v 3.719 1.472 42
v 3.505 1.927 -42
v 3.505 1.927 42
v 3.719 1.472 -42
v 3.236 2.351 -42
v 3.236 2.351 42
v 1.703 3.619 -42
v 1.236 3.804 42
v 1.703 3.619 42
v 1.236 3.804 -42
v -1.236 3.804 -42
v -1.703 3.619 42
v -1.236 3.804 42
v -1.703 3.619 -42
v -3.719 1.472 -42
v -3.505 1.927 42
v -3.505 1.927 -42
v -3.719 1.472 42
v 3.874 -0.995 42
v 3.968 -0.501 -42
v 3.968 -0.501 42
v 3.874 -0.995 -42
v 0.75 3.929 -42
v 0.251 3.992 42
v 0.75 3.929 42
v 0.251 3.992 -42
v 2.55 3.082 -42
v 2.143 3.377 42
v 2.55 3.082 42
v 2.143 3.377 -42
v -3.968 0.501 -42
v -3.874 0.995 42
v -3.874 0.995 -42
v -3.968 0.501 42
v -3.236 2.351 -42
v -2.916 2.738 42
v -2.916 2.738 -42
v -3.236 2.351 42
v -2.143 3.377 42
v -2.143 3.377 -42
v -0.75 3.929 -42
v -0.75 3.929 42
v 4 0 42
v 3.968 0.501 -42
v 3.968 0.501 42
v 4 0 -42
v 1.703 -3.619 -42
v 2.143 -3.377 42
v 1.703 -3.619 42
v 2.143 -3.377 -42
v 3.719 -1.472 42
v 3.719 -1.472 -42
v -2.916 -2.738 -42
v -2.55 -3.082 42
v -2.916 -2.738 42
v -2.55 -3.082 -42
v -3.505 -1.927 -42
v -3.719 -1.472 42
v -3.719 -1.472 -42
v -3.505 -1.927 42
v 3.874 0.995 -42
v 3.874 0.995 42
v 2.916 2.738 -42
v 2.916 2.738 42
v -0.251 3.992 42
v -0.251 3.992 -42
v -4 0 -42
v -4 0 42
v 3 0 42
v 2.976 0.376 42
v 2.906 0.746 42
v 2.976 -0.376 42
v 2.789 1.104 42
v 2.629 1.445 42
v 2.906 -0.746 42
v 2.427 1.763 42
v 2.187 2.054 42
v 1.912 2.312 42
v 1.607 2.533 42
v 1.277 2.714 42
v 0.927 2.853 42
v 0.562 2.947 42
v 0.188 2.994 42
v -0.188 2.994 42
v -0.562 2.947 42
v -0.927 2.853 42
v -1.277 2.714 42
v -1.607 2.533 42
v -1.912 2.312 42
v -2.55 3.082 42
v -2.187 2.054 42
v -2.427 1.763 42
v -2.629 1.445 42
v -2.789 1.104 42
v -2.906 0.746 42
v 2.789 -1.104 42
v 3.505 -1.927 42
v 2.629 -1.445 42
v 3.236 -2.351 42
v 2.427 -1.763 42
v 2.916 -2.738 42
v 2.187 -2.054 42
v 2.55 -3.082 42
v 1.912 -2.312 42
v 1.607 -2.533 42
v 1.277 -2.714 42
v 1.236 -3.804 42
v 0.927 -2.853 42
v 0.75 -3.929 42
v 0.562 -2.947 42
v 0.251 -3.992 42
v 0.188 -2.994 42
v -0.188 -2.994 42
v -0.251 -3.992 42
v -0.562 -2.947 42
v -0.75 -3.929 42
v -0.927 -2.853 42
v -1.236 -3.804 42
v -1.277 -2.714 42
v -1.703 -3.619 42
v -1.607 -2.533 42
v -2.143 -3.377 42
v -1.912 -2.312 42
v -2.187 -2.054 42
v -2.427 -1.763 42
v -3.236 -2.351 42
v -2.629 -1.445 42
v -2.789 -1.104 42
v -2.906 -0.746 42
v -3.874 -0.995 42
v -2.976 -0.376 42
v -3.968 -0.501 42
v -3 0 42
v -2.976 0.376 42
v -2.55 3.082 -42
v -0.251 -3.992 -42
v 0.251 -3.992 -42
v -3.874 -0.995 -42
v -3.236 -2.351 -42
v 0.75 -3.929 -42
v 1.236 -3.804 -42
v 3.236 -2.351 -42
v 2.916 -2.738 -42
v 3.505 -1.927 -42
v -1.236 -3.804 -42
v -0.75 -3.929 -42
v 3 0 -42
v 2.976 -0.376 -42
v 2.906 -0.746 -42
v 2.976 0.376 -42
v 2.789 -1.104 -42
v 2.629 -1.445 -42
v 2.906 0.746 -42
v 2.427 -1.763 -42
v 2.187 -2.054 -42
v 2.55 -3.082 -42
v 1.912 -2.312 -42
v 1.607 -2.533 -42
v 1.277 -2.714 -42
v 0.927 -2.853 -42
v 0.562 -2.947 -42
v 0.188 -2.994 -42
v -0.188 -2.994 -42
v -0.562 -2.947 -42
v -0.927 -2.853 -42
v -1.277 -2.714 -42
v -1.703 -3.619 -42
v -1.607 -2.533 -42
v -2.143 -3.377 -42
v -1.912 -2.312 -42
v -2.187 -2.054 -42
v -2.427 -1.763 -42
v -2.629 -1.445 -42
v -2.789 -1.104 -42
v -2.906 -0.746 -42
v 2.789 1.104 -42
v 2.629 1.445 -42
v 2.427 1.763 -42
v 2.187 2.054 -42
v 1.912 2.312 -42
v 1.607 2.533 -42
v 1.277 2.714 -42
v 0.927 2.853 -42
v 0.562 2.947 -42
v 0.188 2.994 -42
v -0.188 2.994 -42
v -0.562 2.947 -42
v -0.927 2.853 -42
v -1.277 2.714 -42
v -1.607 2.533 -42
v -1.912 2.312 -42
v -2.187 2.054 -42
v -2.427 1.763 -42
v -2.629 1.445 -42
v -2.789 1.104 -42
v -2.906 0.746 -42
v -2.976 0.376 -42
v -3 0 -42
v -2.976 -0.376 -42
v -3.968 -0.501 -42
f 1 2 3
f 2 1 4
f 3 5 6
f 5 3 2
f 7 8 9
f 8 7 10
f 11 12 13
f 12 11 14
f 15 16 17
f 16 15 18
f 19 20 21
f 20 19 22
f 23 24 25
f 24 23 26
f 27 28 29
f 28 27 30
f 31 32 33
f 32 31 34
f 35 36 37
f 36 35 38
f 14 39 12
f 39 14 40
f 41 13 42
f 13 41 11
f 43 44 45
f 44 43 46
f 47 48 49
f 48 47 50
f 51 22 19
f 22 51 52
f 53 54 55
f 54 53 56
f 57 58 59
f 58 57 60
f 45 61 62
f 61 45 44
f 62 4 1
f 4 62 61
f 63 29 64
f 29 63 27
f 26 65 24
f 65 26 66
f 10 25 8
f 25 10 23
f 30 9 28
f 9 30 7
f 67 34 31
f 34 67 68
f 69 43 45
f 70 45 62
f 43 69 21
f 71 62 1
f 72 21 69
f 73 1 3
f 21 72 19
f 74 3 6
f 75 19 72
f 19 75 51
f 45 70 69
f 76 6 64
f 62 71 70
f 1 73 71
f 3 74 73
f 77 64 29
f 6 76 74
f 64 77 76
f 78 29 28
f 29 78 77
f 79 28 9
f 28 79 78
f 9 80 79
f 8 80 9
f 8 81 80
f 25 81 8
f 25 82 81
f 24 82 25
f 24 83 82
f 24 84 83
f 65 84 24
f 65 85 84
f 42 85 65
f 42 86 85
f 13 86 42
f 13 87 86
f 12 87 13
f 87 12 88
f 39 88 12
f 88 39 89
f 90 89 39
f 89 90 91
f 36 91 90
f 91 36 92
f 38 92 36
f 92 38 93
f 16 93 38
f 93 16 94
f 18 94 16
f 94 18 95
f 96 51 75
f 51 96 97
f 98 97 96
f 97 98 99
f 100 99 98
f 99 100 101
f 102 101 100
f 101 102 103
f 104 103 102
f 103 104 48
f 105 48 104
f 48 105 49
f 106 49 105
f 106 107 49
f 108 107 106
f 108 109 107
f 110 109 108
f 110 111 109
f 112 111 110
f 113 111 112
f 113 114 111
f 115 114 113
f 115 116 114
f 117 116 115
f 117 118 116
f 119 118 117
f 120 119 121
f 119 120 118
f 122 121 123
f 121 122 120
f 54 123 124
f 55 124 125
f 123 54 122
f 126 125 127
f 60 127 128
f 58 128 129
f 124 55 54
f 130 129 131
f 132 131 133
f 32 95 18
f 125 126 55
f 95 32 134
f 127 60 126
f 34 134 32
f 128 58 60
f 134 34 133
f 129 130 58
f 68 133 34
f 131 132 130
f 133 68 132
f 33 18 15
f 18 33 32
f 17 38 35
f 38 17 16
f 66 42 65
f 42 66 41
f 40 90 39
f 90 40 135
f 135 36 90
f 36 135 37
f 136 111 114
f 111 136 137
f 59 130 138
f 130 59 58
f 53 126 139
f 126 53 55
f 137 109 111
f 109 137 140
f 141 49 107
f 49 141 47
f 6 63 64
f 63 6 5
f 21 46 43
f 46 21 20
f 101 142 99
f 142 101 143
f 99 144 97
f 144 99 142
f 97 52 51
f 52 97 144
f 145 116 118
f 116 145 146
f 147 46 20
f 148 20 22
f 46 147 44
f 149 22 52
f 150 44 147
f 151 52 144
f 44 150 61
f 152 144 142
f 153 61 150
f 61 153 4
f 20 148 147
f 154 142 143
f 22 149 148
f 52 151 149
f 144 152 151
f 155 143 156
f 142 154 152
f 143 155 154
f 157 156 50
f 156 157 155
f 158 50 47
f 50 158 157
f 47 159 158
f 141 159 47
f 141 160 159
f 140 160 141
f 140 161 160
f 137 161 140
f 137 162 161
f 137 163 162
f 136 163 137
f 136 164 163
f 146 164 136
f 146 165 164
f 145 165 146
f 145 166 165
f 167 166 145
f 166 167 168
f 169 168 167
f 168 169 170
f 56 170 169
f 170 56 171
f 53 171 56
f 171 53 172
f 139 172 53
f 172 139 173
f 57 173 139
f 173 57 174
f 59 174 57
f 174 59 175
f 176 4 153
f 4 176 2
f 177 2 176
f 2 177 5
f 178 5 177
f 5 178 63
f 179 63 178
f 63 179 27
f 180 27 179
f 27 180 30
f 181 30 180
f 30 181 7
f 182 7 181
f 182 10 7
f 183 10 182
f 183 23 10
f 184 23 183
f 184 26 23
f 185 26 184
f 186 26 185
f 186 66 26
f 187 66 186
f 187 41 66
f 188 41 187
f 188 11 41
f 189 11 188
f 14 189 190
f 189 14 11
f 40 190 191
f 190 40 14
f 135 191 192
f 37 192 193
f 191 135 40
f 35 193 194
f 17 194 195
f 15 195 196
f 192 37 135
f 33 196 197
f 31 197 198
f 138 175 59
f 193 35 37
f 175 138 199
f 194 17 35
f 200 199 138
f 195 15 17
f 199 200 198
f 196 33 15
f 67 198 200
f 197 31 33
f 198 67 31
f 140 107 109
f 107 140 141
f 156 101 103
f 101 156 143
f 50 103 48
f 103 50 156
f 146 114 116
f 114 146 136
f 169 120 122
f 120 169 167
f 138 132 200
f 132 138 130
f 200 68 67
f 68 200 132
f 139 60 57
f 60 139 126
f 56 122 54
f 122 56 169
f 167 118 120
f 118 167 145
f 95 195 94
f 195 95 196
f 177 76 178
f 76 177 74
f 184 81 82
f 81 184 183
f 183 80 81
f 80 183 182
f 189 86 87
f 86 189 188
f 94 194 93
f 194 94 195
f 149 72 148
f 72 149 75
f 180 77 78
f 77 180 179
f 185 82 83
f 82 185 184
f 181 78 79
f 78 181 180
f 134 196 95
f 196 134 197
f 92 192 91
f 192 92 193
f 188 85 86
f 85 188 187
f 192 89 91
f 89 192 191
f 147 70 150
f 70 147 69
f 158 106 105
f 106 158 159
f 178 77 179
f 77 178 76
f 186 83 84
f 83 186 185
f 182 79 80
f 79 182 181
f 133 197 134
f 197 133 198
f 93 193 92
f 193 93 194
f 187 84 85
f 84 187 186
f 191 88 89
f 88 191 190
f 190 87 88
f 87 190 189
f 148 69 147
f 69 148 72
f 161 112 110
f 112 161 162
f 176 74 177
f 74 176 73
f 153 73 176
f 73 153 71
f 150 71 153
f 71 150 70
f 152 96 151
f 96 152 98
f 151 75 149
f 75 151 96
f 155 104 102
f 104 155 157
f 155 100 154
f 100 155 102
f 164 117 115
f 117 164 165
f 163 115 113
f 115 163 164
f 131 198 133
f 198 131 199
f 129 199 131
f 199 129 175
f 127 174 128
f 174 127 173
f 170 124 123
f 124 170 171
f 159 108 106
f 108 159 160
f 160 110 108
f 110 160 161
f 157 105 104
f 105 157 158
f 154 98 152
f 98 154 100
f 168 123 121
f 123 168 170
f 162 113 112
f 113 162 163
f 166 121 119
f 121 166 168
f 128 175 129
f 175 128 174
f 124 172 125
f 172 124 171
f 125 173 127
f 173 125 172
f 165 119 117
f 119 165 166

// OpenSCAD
$fn = 50;


difference() {
	union() {
		translate(v = [0, 0, -42.0000000000]) {
			cylinder(h = 84, r = 4.0000000000);
		}
	}
	union() {
		translate(v = [0, 0, -100.0000000000]) {
			cylinder(h = 200, r = 3);
		}
	}
}
